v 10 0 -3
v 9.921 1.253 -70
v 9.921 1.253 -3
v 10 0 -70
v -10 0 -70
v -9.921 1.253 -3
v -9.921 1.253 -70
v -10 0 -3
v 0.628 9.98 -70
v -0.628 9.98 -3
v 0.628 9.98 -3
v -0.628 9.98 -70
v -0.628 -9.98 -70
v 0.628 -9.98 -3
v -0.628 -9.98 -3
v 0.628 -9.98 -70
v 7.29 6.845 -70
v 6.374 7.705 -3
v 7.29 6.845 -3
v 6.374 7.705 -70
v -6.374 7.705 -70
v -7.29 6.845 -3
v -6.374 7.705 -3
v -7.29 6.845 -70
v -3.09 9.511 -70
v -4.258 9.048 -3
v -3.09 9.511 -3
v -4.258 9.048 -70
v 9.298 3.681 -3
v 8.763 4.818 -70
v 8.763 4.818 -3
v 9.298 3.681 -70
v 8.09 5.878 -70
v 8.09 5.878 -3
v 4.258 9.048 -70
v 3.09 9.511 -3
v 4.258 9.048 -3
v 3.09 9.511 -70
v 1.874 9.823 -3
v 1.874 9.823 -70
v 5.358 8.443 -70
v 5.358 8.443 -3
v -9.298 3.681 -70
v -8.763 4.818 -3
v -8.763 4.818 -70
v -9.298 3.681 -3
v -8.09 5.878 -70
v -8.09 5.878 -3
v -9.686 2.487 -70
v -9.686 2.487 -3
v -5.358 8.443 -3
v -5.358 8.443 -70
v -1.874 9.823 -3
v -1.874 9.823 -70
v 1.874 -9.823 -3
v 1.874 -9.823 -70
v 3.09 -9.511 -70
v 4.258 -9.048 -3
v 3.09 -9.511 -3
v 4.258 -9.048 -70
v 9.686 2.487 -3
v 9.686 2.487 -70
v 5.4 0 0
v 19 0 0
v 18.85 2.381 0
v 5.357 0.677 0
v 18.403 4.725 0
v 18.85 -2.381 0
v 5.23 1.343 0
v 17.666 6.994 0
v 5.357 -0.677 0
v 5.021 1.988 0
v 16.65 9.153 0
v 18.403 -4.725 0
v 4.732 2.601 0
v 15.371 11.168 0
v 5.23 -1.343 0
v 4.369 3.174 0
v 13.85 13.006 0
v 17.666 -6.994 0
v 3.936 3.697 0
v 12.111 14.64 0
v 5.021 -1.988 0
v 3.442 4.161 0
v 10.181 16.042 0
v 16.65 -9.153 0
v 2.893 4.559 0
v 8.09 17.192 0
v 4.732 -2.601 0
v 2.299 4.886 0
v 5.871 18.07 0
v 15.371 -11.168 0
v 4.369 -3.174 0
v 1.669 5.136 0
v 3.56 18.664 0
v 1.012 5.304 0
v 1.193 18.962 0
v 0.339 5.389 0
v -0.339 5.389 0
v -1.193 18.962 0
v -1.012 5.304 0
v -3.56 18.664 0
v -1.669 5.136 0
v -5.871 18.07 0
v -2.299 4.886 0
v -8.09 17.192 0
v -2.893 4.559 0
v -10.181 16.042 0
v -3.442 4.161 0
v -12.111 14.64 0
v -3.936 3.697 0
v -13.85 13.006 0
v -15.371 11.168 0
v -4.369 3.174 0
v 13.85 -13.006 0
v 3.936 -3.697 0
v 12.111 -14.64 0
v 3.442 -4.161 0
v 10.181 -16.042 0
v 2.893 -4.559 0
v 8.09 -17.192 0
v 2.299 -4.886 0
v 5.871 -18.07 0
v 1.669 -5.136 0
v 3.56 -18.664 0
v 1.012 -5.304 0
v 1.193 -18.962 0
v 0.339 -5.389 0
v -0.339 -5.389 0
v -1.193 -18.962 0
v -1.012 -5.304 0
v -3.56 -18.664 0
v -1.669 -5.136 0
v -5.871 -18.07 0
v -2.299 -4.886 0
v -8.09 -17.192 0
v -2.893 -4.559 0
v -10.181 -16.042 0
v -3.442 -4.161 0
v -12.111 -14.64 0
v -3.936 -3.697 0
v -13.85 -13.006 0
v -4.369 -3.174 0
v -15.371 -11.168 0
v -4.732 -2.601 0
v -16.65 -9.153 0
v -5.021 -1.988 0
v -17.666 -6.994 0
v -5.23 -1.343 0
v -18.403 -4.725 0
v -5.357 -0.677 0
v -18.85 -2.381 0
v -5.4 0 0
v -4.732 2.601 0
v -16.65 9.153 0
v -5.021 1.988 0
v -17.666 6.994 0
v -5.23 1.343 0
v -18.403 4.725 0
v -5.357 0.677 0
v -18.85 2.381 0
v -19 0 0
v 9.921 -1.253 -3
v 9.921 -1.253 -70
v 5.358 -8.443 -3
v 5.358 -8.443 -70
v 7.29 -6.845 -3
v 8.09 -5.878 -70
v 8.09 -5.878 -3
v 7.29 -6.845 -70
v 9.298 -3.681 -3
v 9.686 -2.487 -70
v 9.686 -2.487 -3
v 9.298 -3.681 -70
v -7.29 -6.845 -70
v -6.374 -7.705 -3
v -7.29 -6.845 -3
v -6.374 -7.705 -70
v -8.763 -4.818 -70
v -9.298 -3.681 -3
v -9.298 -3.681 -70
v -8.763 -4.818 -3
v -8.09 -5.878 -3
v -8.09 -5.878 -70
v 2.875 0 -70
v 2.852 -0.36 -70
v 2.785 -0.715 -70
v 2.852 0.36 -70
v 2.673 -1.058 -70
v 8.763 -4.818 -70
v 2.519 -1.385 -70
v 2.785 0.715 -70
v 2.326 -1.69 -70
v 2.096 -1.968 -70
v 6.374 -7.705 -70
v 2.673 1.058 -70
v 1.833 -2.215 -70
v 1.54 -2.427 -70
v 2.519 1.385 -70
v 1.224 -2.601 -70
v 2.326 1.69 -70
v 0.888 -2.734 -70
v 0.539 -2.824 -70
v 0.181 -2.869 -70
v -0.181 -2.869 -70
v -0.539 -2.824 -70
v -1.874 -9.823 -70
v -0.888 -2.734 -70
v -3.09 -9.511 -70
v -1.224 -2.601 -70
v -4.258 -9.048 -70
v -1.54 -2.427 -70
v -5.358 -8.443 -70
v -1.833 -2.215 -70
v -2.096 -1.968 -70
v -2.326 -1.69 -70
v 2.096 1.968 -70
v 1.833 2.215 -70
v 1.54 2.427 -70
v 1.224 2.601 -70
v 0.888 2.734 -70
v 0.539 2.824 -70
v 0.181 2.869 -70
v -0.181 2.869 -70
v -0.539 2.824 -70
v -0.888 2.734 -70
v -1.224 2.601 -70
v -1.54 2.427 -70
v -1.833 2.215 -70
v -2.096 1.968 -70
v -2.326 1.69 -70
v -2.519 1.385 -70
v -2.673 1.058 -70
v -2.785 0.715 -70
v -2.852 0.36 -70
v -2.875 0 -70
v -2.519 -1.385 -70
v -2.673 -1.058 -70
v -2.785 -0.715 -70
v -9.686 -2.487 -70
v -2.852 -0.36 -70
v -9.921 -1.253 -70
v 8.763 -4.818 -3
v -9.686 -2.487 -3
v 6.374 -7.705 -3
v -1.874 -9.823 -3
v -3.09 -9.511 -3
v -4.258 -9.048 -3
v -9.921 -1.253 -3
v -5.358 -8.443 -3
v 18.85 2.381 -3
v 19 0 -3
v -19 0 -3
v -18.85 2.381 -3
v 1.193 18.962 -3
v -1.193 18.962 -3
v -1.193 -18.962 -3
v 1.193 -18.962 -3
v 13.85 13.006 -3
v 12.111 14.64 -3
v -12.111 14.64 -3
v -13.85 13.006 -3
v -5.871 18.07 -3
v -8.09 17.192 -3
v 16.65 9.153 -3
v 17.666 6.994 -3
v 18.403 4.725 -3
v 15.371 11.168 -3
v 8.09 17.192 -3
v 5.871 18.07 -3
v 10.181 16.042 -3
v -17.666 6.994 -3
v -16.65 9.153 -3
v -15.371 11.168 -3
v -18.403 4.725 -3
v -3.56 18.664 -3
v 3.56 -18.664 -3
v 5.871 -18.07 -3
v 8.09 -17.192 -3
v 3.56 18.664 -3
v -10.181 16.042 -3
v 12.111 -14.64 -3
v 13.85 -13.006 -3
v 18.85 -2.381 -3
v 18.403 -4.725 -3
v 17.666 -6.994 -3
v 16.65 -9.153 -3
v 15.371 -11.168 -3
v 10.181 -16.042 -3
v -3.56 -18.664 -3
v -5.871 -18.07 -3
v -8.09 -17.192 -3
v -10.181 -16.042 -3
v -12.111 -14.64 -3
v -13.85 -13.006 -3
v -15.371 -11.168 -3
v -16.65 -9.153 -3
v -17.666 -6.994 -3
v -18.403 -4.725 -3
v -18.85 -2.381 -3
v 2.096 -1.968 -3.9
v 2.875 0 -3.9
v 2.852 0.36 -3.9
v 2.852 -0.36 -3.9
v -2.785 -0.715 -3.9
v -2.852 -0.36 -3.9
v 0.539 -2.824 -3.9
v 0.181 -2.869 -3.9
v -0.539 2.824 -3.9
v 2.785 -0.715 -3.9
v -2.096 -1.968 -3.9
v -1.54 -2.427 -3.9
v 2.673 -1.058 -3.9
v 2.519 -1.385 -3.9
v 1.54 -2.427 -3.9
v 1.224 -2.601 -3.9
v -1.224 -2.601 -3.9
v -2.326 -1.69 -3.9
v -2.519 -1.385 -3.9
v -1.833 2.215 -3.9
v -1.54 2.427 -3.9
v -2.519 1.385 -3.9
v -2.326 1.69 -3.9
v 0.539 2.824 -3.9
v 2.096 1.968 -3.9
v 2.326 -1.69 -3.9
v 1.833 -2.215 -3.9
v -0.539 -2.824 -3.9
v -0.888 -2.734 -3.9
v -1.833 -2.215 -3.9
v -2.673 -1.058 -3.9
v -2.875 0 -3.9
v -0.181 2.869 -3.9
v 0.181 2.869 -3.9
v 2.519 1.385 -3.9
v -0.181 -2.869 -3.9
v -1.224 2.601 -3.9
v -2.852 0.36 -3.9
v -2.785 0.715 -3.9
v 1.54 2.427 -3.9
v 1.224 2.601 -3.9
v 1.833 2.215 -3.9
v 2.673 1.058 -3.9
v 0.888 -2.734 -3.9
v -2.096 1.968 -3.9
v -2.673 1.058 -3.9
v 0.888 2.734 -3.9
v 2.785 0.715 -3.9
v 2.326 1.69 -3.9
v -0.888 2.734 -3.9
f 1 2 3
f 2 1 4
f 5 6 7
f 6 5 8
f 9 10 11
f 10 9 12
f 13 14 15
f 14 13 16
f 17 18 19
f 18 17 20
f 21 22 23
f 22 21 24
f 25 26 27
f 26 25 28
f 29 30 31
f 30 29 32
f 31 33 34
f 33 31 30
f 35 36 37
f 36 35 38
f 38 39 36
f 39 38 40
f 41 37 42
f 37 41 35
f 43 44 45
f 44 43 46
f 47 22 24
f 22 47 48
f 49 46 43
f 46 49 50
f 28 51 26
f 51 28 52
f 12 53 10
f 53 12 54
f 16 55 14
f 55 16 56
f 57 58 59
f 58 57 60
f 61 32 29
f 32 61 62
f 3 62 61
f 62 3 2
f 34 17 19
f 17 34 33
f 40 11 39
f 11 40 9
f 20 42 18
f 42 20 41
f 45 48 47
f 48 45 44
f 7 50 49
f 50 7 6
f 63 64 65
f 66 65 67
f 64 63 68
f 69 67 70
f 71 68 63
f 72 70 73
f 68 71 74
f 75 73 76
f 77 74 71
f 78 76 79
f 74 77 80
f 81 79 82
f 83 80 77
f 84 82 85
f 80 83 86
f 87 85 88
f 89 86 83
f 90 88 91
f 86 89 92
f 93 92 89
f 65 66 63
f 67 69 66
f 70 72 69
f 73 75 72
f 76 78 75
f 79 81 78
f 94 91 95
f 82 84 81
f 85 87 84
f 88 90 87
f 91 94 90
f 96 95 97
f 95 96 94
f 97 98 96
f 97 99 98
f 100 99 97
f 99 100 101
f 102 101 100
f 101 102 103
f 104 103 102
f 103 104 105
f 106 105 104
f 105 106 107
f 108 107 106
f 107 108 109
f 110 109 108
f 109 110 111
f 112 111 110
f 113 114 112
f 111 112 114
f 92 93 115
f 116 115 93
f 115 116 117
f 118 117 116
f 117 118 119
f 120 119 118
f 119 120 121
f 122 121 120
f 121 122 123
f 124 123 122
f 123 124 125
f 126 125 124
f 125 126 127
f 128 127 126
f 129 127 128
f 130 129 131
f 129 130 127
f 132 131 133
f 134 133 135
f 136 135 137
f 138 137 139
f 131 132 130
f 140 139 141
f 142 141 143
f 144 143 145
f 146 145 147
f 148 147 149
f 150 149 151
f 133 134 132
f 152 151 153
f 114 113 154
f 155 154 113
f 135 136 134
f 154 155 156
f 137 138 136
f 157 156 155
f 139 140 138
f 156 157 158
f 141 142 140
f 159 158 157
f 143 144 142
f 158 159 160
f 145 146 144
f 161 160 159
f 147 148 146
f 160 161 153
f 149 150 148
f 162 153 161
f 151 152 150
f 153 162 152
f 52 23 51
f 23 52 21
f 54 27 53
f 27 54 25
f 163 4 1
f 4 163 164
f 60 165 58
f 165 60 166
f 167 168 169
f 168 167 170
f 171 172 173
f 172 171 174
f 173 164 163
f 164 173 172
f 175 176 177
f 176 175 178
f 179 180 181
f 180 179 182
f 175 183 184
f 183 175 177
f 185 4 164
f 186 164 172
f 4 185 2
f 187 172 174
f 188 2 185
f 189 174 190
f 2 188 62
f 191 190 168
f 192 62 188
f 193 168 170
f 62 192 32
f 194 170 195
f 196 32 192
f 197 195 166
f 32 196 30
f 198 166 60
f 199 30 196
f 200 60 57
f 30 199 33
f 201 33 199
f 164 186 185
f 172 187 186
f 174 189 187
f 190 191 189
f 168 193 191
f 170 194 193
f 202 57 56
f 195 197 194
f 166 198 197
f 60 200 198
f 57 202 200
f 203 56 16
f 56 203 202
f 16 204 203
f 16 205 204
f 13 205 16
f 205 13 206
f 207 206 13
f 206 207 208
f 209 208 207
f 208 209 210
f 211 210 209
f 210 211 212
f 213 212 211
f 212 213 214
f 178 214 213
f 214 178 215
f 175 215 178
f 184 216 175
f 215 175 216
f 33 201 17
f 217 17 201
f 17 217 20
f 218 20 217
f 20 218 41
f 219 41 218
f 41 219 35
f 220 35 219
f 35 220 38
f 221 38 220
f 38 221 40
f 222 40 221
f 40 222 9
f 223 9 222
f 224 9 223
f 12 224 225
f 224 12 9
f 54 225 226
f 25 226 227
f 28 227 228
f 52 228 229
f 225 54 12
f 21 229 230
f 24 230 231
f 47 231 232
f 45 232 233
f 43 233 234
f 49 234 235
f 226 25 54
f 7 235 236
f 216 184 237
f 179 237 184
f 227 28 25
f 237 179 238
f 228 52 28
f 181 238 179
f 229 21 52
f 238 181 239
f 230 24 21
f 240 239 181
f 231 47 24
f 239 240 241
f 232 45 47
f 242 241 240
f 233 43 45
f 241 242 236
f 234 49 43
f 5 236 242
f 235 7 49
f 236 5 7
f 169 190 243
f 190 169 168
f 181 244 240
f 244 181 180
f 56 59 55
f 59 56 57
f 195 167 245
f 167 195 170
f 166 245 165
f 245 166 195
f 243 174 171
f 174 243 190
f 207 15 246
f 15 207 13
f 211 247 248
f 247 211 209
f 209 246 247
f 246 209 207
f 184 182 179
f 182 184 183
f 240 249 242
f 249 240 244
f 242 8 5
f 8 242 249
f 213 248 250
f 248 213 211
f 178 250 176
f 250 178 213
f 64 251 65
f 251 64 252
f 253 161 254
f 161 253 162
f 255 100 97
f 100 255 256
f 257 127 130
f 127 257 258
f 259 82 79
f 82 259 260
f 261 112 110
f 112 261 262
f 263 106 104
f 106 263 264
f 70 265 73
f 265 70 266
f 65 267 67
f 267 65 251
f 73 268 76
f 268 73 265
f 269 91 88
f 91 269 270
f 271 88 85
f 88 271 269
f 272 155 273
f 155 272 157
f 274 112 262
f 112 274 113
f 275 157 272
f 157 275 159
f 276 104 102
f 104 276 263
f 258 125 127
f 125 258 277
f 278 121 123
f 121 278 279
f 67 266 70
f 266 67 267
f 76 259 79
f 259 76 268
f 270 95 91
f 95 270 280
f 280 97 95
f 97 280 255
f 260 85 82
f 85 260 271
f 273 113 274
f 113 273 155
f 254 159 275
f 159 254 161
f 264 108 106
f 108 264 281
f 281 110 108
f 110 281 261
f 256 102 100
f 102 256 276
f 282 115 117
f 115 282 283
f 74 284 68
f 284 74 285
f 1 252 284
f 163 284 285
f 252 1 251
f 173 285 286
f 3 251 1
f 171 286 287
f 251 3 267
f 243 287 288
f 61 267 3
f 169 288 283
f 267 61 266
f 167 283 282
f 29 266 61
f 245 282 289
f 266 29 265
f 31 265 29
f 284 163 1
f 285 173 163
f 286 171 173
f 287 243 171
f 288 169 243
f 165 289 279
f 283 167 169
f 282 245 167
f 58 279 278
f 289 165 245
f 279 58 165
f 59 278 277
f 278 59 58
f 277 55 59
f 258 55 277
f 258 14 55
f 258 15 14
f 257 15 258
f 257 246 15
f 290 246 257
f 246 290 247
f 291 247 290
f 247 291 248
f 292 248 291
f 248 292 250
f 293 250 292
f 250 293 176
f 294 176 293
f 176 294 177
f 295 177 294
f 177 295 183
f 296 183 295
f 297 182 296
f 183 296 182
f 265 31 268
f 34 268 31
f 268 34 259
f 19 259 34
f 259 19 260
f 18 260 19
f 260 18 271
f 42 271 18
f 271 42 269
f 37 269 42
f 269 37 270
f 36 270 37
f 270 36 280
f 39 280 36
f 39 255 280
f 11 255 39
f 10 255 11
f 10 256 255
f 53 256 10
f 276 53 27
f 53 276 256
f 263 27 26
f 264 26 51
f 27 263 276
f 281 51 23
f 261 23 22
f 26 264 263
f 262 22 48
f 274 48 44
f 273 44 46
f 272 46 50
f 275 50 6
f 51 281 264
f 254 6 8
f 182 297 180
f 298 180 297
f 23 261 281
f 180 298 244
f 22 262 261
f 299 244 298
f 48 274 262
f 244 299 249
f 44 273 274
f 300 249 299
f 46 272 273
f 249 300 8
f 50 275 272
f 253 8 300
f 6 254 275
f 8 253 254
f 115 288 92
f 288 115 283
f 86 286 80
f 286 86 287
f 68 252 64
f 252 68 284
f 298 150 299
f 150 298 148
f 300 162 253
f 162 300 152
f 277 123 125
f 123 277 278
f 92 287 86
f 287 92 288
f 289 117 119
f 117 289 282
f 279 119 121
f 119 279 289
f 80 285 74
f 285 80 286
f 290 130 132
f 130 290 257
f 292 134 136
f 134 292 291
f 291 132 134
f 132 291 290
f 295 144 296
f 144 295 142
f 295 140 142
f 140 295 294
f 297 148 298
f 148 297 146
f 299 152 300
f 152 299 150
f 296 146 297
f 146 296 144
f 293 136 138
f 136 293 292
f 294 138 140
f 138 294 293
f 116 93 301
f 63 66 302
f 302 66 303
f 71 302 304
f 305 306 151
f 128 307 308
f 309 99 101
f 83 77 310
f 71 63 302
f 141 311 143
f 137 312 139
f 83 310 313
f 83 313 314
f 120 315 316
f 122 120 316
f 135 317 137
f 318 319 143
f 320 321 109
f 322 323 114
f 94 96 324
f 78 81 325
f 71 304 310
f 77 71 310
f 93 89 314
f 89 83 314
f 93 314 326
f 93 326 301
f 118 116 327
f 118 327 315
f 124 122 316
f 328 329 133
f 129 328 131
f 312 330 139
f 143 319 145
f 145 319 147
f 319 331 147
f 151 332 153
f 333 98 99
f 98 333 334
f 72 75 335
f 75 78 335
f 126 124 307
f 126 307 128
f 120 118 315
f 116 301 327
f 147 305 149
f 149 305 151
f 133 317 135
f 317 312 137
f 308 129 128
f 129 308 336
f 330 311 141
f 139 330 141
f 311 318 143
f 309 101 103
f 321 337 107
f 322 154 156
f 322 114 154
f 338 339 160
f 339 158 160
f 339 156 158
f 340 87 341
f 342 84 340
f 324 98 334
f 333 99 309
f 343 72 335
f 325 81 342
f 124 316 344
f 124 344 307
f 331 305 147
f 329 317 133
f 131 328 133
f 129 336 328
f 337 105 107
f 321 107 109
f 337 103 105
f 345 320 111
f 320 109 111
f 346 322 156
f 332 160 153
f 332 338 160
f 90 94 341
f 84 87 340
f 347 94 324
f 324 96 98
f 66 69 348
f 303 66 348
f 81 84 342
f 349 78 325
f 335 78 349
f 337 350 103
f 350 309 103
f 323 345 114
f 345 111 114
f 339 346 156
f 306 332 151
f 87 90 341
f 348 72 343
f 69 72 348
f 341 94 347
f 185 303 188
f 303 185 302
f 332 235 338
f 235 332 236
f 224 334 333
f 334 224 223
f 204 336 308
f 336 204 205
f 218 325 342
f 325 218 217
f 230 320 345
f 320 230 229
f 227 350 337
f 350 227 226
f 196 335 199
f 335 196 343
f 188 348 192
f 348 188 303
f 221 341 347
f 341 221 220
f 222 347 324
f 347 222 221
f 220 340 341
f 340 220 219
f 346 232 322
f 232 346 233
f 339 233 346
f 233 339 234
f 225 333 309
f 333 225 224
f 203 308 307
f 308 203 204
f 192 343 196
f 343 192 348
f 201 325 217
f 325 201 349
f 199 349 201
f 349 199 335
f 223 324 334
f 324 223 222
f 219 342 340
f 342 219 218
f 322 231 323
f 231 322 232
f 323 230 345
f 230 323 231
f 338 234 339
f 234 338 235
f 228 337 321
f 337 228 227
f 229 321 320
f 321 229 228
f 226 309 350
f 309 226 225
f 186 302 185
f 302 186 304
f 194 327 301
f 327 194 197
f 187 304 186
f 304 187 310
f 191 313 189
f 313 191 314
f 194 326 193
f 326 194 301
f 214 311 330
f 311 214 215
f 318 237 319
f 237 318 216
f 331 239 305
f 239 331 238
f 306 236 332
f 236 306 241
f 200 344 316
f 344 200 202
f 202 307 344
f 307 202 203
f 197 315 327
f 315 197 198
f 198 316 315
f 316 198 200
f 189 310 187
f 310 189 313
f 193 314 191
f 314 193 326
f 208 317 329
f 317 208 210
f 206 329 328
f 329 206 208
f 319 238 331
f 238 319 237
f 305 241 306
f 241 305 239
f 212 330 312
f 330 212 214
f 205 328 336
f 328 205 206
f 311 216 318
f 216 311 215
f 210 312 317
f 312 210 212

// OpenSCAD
$fn = 50;


difference() {
	union() {
		translate(v = [0, 0, -70.0000000000]) {
			cylinder(h = 70, r = 10.0000000000);
		}
		translate(v = [0, 0, -3.0000000000]) {
			cylinder(h = 3, r = 19.0000000000);
		}
	}
	union() {
		translate(v = [0, 0, 0]) {
			rotate(a = [0, 0, 0]) {
				difference() {
					union() {
						#translate(v = [0, 0, -70.0000000000]) {
							cylinder(h = 70, r = 2.6000000000);
						}
						#translate(v = [0, 0, -3.9000000000]) {
							cylinder(h = 3.9000000000, r1 = 2.8750000000, r2 = 5.4000000000);
						}
						#translate(v = [0, 0, -70.0000000000]) {
							cylinder(h = 70, r = 2.8750000000);
						}
						#translate(v = [0, 0, -70.0000000000]) {
							cylinder(h = 70, r = 2.6000000000);
						}
					}
					union();
				}
			}
		}
	}
}
